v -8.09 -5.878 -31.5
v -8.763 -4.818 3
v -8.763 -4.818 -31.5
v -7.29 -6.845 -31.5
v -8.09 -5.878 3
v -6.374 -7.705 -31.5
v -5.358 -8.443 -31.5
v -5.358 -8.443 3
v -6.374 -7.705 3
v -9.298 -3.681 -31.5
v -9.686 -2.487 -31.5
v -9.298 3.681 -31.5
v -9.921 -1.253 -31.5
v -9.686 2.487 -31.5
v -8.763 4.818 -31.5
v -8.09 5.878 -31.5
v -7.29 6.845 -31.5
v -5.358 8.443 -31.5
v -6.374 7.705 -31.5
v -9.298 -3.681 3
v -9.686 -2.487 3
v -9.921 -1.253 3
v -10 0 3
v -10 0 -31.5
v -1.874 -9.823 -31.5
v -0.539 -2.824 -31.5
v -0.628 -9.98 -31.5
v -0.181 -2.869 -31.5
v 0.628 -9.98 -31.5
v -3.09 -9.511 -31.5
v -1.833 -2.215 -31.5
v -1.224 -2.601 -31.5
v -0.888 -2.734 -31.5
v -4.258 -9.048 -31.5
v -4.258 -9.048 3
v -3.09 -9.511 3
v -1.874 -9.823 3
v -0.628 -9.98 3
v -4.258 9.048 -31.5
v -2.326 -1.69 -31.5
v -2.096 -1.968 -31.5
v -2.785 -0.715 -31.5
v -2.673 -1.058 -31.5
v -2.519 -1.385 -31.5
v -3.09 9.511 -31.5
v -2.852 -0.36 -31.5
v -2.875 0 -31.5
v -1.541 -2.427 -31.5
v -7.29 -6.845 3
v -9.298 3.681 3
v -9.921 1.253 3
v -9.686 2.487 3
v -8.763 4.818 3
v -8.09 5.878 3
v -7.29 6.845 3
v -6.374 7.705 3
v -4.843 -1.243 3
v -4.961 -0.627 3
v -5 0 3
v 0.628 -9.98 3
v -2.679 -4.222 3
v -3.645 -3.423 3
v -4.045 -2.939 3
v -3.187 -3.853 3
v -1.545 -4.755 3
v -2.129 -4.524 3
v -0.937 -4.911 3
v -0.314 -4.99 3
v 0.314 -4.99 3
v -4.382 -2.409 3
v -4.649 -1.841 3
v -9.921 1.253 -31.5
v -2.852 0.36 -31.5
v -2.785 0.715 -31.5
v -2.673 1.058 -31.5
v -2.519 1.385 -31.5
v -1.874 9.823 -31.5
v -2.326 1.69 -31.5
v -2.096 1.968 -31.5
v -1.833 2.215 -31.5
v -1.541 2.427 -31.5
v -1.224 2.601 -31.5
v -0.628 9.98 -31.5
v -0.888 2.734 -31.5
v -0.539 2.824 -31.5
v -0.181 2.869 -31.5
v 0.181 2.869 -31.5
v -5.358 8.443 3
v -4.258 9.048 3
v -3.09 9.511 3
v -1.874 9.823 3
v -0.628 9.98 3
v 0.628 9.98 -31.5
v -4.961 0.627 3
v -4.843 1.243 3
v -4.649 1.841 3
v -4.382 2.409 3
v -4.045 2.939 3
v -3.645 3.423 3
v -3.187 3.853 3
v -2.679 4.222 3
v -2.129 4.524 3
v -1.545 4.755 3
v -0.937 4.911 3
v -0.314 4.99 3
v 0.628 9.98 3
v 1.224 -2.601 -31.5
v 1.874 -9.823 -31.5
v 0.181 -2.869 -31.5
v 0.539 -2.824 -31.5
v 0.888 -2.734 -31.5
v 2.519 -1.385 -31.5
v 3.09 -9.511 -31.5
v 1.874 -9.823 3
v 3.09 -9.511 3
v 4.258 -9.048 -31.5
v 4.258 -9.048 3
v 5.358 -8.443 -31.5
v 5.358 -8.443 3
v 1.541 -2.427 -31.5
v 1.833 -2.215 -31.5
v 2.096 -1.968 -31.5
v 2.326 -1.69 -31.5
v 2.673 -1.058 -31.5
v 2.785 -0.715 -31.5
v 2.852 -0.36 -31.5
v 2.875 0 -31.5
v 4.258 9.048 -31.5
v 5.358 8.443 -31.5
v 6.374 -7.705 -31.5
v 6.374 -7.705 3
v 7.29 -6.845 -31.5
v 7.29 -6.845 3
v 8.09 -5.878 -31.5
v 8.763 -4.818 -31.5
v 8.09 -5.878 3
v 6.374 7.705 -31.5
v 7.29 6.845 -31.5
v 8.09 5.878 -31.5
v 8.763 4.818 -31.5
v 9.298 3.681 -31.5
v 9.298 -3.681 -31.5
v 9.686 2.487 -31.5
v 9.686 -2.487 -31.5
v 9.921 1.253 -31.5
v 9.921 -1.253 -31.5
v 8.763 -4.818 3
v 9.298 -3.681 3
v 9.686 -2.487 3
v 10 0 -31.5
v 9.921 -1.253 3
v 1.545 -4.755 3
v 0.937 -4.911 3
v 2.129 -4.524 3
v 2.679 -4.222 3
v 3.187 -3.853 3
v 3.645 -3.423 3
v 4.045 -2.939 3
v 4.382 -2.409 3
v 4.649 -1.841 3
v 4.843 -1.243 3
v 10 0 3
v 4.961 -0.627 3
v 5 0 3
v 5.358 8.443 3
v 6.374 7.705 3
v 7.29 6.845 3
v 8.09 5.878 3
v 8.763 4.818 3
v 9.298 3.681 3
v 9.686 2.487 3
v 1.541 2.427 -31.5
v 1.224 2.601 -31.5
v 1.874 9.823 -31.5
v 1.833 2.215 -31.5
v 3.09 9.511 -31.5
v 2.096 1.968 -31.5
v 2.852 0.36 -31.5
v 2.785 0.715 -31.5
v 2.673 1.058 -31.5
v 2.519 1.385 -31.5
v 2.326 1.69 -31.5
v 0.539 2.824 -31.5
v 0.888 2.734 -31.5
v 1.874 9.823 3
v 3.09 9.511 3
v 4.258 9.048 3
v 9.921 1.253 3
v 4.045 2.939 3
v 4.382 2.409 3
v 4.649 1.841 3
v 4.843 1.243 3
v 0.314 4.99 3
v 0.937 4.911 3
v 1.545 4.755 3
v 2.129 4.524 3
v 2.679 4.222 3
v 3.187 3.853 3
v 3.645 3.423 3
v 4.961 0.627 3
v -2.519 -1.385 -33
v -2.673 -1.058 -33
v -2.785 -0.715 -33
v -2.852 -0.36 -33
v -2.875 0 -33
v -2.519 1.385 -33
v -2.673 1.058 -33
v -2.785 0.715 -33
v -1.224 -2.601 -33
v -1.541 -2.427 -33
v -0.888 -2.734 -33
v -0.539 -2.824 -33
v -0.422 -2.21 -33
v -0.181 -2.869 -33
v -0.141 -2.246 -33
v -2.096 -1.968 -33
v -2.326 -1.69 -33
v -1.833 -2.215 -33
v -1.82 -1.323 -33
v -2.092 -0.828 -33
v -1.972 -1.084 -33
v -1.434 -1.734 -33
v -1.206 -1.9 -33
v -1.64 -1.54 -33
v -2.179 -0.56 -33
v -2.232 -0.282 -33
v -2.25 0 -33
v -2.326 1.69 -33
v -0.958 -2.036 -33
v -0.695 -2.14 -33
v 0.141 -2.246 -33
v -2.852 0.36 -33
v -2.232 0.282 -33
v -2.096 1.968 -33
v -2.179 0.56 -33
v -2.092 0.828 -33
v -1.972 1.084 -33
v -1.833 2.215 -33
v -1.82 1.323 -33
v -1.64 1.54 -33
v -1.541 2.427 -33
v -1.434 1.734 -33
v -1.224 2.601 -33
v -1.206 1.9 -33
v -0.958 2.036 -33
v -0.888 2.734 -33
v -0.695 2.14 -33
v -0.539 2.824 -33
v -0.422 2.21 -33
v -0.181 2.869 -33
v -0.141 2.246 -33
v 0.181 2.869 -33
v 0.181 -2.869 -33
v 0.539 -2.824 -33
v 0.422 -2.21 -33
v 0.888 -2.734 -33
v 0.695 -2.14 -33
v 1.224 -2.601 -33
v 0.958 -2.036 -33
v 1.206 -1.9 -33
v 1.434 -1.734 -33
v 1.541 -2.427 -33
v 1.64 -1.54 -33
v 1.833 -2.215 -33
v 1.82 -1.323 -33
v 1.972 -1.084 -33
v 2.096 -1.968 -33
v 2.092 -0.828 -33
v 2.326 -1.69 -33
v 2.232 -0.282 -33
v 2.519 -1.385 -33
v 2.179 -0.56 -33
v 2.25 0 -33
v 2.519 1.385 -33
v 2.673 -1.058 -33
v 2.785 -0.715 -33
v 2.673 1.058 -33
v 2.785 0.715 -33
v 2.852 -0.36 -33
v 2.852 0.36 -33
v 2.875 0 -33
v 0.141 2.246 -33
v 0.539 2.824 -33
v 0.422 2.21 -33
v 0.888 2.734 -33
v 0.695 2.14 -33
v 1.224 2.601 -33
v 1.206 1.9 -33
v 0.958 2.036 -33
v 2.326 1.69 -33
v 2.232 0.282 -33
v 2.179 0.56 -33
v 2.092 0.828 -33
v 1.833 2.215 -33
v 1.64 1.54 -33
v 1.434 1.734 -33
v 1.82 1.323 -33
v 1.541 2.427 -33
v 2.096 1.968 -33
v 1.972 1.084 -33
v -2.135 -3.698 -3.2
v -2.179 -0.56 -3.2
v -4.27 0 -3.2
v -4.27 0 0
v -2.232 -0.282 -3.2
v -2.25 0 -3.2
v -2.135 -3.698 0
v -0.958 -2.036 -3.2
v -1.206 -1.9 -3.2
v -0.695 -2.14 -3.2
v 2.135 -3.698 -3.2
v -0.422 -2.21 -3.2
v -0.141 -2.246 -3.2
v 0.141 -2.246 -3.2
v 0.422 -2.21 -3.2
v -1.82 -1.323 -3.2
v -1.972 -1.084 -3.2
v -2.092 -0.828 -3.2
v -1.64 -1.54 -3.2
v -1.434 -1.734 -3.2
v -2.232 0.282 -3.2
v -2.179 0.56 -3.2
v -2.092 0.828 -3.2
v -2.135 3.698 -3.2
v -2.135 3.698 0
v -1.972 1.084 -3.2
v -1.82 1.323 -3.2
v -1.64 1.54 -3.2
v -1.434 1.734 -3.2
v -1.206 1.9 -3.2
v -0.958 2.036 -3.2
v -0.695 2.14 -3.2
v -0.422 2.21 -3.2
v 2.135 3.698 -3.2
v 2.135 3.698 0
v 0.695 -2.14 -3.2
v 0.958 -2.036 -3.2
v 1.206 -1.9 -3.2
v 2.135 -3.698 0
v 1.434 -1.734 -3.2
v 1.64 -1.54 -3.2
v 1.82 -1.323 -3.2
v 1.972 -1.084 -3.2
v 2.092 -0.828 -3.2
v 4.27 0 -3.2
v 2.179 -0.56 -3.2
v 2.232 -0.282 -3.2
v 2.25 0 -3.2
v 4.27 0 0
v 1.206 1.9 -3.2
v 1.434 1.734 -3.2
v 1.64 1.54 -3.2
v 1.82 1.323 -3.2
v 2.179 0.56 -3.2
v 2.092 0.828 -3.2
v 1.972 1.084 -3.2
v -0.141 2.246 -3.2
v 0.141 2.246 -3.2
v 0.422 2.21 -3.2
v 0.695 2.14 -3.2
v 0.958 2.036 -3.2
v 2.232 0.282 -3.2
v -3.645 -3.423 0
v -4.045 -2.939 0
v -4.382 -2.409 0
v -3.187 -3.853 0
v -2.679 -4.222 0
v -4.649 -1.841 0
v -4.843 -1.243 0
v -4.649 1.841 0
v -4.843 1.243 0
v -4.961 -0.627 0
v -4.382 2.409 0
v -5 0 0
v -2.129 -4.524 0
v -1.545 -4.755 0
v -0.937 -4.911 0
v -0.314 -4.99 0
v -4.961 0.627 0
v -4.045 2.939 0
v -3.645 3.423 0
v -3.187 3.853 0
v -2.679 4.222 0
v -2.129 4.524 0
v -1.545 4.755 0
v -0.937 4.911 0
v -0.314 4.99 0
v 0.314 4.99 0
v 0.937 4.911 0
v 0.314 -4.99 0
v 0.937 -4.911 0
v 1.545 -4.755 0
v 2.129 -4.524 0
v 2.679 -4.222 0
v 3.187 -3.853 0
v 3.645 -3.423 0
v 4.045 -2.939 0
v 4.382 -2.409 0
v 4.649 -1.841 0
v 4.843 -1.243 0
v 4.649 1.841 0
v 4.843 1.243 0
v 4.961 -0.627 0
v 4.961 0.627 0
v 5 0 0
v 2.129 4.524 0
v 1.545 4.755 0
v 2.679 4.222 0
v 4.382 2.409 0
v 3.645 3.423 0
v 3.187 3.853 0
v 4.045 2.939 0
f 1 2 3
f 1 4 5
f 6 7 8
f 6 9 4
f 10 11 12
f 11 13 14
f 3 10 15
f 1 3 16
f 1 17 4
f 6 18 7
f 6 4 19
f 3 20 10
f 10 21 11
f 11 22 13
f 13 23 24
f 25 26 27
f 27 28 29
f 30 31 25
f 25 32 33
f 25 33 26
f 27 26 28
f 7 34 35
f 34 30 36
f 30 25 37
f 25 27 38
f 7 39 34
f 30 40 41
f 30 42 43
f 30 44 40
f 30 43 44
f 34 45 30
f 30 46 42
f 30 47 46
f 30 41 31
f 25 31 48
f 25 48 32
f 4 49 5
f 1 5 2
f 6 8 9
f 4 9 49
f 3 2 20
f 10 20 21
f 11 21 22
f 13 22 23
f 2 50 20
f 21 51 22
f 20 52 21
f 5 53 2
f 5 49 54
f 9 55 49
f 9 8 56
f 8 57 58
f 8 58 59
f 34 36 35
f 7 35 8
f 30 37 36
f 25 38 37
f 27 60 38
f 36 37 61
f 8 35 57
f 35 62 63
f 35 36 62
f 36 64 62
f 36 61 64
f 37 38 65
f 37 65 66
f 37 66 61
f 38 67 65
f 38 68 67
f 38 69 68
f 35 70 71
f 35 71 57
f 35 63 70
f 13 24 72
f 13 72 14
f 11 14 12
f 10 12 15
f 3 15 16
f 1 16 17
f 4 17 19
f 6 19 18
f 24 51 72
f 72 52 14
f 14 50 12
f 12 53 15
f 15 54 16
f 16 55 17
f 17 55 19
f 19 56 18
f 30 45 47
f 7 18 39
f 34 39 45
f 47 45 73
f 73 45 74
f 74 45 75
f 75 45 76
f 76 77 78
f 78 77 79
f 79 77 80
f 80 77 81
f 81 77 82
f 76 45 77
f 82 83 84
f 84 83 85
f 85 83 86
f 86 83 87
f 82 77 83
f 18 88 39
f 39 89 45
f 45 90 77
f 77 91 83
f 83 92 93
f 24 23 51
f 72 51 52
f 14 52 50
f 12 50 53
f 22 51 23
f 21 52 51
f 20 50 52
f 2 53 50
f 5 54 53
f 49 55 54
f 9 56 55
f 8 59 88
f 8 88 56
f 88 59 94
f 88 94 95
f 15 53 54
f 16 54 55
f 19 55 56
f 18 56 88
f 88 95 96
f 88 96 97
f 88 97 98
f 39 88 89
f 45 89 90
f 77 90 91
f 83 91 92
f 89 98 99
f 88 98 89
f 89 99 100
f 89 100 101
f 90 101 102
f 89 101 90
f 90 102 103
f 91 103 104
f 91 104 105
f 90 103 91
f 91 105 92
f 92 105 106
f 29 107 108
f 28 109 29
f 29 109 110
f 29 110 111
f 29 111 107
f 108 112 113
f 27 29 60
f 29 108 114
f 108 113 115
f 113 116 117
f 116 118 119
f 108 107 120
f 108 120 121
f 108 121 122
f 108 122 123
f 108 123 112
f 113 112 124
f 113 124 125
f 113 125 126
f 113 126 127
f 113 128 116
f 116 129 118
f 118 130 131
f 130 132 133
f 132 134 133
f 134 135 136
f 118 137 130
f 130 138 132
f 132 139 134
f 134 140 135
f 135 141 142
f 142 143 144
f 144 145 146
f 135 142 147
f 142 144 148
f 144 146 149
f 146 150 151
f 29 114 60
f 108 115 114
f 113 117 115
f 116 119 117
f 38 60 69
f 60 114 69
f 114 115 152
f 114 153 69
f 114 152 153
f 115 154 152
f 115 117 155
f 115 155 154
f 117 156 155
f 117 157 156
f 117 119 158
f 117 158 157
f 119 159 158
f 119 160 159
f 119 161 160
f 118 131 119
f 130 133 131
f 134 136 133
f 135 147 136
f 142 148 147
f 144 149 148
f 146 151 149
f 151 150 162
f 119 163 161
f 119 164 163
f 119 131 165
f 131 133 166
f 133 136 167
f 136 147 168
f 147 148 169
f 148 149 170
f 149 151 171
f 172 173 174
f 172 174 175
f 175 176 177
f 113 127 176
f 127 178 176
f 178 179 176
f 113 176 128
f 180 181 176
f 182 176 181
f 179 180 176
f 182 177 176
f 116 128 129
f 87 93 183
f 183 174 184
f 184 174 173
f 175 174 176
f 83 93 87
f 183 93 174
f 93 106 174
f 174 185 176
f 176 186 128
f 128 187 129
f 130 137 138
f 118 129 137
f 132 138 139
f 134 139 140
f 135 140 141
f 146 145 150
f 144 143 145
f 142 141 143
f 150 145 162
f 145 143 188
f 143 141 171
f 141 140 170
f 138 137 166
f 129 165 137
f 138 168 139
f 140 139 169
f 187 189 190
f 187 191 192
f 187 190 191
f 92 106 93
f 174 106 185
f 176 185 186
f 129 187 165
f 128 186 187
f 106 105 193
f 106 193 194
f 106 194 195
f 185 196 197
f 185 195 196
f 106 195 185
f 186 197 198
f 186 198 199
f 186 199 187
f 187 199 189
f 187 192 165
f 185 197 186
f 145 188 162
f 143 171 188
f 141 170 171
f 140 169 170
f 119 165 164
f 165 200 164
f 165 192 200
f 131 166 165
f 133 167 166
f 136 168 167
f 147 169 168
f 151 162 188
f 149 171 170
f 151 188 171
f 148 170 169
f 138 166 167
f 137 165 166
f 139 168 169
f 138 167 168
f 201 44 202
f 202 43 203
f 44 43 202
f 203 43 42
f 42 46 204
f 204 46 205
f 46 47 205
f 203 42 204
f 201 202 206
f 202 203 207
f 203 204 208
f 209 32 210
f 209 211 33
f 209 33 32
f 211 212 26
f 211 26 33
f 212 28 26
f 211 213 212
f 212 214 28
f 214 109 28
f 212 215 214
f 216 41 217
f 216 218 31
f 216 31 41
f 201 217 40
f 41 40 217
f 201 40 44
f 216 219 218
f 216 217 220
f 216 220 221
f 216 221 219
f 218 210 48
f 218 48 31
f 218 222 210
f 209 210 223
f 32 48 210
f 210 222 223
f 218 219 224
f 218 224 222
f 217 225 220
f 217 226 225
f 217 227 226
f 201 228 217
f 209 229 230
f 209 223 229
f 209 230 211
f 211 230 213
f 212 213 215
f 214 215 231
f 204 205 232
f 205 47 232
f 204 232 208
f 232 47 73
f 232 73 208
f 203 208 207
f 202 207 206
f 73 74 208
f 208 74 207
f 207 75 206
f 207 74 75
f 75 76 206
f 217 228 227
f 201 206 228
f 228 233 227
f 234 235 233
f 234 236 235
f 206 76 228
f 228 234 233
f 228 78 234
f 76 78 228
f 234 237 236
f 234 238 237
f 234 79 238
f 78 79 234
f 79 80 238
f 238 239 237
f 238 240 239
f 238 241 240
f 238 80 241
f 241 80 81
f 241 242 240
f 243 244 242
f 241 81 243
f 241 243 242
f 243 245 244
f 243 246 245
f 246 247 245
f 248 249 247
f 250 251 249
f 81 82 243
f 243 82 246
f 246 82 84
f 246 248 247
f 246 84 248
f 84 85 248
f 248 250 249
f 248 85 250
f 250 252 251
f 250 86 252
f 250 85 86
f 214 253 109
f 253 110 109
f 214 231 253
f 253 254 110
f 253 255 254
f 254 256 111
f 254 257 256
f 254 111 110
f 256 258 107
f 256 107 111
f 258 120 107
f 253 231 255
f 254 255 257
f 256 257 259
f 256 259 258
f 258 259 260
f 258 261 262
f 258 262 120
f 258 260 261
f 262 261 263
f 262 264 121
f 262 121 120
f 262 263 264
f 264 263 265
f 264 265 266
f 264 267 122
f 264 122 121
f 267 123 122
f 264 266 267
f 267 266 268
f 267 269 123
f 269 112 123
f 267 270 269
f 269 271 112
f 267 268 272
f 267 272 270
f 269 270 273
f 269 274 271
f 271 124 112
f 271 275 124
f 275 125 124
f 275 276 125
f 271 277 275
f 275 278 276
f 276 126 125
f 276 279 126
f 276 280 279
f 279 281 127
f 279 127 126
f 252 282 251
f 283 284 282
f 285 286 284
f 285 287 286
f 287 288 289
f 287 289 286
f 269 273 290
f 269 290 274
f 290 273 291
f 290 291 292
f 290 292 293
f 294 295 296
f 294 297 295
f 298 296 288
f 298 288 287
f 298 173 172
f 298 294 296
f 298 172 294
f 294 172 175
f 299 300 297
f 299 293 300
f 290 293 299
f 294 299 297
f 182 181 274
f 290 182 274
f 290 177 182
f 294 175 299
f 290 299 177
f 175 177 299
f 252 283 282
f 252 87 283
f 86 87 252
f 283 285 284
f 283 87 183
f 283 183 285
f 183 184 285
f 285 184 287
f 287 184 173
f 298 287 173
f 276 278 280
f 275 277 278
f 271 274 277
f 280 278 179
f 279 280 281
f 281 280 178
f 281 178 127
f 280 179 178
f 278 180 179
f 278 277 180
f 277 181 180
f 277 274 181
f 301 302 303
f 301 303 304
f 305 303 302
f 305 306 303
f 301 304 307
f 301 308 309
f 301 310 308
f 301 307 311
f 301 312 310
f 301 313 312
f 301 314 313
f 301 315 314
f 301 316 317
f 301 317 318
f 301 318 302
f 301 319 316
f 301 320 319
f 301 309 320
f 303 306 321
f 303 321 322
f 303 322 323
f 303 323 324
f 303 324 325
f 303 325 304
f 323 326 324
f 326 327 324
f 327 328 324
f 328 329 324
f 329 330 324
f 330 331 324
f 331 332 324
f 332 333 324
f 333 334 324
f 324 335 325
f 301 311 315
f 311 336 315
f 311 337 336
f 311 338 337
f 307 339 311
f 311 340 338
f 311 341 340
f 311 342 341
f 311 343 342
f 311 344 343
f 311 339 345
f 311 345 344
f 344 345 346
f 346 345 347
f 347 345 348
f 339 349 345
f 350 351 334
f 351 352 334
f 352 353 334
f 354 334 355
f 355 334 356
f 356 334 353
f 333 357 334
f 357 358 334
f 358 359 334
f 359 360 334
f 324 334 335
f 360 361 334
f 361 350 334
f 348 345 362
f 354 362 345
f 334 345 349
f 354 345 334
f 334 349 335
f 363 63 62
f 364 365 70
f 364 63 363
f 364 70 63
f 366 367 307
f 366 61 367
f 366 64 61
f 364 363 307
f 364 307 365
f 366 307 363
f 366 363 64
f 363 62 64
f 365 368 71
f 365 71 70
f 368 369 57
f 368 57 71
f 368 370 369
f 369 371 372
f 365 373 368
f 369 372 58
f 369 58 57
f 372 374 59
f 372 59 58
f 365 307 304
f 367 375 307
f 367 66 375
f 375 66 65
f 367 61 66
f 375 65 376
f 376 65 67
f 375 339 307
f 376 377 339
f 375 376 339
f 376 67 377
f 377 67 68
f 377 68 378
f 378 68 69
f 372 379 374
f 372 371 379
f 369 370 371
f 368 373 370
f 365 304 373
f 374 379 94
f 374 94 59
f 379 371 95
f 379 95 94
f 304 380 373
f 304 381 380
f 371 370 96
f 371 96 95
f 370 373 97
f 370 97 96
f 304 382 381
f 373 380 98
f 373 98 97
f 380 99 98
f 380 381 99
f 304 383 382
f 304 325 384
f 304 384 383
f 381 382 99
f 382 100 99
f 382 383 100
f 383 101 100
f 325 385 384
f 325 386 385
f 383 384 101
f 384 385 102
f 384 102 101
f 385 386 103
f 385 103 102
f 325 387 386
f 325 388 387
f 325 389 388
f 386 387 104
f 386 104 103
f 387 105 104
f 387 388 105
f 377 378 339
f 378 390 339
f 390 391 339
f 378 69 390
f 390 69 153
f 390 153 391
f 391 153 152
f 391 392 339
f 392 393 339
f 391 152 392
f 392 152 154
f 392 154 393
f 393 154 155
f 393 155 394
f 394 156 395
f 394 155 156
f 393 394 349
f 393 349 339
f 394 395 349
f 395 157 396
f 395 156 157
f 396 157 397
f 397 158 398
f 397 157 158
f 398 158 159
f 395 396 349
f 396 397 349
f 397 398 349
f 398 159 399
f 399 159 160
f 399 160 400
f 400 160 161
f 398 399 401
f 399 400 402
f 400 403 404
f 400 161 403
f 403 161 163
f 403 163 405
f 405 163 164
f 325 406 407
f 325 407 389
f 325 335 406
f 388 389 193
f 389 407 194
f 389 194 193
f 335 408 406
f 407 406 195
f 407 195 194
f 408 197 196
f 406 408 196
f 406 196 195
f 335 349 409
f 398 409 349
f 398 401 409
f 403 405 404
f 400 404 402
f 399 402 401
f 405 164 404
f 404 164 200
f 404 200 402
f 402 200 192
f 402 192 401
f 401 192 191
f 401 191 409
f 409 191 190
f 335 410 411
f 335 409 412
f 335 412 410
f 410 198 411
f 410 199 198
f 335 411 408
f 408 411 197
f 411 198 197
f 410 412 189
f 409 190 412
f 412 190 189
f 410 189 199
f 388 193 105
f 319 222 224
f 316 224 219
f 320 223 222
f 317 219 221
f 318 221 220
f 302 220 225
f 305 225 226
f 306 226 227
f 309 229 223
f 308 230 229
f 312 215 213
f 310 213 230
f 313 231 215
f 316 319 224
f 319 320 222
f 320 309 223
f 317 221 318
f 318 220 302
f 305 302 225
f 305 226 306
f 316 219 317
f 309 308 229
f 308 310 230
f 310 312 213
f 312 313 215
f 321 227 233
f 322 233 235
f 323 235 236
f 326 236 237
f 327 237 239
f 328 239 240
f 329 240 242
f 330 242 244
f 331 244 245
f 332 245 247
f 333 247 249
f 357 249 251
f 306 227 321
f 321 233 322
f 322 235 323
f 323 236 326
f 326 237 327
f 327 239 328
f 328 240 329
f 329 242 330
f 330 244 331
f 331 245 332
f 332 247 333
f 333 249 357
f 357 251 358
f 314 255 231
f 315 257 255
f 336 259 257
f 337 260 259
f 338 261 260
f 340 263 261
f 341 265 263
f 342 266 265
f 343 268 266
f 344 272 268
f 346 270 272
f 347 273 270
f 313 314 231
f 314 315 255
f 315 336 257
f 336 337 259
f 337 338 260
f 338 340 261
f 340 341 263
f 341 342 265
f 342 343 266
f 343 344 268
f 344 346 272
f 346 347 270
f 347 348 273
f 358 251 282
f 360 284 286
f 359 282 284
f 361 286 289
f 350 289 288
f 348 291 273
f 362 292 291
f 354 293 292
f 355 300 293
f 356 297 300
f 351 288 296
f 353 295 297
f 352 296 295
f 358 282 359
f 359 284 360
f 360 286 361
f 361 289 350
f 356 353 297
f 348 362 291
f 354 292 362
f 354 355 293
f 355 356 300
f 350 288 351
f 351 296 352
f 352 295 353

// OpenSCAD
$fn = 50;

difference() {
	union() {
		translate(v = [0, 0, -31.5]) {
			cylinder(h = 34.5, r = 10.0);
		}
		#translate(v = [0, 0, -33.0]) {
			cylinder(h = 33, r = 2.875);
		}
	}
	union() {
		translate(v = [0, 0, 0]) {
			rotate(a = [0, 0, 0]) {
				difference() {
					union() {
						translate(v = [0, 0, -3.2]) {
							linear_extrude(height = 3.2) {
								polygon(points = [[4.2698, 0.0], [2.1349000000000005, 3.697755269078796], [-2.134899999999999, 3.6977552690787965], [-4.2698, 5.228996902999369e-16], [-2.134900000000002, -3.6977552690787956], [2.1348999999999974, -3.697755269078798]]);
							}
						}
					}
					union();
				}
			}
		}
		#cylinder(h = 3, r = 5.0);
		#translate(v = [0, 0, -100.0]) {
			cylinder(h = 200, r = 2.25);
		}
	}
}
